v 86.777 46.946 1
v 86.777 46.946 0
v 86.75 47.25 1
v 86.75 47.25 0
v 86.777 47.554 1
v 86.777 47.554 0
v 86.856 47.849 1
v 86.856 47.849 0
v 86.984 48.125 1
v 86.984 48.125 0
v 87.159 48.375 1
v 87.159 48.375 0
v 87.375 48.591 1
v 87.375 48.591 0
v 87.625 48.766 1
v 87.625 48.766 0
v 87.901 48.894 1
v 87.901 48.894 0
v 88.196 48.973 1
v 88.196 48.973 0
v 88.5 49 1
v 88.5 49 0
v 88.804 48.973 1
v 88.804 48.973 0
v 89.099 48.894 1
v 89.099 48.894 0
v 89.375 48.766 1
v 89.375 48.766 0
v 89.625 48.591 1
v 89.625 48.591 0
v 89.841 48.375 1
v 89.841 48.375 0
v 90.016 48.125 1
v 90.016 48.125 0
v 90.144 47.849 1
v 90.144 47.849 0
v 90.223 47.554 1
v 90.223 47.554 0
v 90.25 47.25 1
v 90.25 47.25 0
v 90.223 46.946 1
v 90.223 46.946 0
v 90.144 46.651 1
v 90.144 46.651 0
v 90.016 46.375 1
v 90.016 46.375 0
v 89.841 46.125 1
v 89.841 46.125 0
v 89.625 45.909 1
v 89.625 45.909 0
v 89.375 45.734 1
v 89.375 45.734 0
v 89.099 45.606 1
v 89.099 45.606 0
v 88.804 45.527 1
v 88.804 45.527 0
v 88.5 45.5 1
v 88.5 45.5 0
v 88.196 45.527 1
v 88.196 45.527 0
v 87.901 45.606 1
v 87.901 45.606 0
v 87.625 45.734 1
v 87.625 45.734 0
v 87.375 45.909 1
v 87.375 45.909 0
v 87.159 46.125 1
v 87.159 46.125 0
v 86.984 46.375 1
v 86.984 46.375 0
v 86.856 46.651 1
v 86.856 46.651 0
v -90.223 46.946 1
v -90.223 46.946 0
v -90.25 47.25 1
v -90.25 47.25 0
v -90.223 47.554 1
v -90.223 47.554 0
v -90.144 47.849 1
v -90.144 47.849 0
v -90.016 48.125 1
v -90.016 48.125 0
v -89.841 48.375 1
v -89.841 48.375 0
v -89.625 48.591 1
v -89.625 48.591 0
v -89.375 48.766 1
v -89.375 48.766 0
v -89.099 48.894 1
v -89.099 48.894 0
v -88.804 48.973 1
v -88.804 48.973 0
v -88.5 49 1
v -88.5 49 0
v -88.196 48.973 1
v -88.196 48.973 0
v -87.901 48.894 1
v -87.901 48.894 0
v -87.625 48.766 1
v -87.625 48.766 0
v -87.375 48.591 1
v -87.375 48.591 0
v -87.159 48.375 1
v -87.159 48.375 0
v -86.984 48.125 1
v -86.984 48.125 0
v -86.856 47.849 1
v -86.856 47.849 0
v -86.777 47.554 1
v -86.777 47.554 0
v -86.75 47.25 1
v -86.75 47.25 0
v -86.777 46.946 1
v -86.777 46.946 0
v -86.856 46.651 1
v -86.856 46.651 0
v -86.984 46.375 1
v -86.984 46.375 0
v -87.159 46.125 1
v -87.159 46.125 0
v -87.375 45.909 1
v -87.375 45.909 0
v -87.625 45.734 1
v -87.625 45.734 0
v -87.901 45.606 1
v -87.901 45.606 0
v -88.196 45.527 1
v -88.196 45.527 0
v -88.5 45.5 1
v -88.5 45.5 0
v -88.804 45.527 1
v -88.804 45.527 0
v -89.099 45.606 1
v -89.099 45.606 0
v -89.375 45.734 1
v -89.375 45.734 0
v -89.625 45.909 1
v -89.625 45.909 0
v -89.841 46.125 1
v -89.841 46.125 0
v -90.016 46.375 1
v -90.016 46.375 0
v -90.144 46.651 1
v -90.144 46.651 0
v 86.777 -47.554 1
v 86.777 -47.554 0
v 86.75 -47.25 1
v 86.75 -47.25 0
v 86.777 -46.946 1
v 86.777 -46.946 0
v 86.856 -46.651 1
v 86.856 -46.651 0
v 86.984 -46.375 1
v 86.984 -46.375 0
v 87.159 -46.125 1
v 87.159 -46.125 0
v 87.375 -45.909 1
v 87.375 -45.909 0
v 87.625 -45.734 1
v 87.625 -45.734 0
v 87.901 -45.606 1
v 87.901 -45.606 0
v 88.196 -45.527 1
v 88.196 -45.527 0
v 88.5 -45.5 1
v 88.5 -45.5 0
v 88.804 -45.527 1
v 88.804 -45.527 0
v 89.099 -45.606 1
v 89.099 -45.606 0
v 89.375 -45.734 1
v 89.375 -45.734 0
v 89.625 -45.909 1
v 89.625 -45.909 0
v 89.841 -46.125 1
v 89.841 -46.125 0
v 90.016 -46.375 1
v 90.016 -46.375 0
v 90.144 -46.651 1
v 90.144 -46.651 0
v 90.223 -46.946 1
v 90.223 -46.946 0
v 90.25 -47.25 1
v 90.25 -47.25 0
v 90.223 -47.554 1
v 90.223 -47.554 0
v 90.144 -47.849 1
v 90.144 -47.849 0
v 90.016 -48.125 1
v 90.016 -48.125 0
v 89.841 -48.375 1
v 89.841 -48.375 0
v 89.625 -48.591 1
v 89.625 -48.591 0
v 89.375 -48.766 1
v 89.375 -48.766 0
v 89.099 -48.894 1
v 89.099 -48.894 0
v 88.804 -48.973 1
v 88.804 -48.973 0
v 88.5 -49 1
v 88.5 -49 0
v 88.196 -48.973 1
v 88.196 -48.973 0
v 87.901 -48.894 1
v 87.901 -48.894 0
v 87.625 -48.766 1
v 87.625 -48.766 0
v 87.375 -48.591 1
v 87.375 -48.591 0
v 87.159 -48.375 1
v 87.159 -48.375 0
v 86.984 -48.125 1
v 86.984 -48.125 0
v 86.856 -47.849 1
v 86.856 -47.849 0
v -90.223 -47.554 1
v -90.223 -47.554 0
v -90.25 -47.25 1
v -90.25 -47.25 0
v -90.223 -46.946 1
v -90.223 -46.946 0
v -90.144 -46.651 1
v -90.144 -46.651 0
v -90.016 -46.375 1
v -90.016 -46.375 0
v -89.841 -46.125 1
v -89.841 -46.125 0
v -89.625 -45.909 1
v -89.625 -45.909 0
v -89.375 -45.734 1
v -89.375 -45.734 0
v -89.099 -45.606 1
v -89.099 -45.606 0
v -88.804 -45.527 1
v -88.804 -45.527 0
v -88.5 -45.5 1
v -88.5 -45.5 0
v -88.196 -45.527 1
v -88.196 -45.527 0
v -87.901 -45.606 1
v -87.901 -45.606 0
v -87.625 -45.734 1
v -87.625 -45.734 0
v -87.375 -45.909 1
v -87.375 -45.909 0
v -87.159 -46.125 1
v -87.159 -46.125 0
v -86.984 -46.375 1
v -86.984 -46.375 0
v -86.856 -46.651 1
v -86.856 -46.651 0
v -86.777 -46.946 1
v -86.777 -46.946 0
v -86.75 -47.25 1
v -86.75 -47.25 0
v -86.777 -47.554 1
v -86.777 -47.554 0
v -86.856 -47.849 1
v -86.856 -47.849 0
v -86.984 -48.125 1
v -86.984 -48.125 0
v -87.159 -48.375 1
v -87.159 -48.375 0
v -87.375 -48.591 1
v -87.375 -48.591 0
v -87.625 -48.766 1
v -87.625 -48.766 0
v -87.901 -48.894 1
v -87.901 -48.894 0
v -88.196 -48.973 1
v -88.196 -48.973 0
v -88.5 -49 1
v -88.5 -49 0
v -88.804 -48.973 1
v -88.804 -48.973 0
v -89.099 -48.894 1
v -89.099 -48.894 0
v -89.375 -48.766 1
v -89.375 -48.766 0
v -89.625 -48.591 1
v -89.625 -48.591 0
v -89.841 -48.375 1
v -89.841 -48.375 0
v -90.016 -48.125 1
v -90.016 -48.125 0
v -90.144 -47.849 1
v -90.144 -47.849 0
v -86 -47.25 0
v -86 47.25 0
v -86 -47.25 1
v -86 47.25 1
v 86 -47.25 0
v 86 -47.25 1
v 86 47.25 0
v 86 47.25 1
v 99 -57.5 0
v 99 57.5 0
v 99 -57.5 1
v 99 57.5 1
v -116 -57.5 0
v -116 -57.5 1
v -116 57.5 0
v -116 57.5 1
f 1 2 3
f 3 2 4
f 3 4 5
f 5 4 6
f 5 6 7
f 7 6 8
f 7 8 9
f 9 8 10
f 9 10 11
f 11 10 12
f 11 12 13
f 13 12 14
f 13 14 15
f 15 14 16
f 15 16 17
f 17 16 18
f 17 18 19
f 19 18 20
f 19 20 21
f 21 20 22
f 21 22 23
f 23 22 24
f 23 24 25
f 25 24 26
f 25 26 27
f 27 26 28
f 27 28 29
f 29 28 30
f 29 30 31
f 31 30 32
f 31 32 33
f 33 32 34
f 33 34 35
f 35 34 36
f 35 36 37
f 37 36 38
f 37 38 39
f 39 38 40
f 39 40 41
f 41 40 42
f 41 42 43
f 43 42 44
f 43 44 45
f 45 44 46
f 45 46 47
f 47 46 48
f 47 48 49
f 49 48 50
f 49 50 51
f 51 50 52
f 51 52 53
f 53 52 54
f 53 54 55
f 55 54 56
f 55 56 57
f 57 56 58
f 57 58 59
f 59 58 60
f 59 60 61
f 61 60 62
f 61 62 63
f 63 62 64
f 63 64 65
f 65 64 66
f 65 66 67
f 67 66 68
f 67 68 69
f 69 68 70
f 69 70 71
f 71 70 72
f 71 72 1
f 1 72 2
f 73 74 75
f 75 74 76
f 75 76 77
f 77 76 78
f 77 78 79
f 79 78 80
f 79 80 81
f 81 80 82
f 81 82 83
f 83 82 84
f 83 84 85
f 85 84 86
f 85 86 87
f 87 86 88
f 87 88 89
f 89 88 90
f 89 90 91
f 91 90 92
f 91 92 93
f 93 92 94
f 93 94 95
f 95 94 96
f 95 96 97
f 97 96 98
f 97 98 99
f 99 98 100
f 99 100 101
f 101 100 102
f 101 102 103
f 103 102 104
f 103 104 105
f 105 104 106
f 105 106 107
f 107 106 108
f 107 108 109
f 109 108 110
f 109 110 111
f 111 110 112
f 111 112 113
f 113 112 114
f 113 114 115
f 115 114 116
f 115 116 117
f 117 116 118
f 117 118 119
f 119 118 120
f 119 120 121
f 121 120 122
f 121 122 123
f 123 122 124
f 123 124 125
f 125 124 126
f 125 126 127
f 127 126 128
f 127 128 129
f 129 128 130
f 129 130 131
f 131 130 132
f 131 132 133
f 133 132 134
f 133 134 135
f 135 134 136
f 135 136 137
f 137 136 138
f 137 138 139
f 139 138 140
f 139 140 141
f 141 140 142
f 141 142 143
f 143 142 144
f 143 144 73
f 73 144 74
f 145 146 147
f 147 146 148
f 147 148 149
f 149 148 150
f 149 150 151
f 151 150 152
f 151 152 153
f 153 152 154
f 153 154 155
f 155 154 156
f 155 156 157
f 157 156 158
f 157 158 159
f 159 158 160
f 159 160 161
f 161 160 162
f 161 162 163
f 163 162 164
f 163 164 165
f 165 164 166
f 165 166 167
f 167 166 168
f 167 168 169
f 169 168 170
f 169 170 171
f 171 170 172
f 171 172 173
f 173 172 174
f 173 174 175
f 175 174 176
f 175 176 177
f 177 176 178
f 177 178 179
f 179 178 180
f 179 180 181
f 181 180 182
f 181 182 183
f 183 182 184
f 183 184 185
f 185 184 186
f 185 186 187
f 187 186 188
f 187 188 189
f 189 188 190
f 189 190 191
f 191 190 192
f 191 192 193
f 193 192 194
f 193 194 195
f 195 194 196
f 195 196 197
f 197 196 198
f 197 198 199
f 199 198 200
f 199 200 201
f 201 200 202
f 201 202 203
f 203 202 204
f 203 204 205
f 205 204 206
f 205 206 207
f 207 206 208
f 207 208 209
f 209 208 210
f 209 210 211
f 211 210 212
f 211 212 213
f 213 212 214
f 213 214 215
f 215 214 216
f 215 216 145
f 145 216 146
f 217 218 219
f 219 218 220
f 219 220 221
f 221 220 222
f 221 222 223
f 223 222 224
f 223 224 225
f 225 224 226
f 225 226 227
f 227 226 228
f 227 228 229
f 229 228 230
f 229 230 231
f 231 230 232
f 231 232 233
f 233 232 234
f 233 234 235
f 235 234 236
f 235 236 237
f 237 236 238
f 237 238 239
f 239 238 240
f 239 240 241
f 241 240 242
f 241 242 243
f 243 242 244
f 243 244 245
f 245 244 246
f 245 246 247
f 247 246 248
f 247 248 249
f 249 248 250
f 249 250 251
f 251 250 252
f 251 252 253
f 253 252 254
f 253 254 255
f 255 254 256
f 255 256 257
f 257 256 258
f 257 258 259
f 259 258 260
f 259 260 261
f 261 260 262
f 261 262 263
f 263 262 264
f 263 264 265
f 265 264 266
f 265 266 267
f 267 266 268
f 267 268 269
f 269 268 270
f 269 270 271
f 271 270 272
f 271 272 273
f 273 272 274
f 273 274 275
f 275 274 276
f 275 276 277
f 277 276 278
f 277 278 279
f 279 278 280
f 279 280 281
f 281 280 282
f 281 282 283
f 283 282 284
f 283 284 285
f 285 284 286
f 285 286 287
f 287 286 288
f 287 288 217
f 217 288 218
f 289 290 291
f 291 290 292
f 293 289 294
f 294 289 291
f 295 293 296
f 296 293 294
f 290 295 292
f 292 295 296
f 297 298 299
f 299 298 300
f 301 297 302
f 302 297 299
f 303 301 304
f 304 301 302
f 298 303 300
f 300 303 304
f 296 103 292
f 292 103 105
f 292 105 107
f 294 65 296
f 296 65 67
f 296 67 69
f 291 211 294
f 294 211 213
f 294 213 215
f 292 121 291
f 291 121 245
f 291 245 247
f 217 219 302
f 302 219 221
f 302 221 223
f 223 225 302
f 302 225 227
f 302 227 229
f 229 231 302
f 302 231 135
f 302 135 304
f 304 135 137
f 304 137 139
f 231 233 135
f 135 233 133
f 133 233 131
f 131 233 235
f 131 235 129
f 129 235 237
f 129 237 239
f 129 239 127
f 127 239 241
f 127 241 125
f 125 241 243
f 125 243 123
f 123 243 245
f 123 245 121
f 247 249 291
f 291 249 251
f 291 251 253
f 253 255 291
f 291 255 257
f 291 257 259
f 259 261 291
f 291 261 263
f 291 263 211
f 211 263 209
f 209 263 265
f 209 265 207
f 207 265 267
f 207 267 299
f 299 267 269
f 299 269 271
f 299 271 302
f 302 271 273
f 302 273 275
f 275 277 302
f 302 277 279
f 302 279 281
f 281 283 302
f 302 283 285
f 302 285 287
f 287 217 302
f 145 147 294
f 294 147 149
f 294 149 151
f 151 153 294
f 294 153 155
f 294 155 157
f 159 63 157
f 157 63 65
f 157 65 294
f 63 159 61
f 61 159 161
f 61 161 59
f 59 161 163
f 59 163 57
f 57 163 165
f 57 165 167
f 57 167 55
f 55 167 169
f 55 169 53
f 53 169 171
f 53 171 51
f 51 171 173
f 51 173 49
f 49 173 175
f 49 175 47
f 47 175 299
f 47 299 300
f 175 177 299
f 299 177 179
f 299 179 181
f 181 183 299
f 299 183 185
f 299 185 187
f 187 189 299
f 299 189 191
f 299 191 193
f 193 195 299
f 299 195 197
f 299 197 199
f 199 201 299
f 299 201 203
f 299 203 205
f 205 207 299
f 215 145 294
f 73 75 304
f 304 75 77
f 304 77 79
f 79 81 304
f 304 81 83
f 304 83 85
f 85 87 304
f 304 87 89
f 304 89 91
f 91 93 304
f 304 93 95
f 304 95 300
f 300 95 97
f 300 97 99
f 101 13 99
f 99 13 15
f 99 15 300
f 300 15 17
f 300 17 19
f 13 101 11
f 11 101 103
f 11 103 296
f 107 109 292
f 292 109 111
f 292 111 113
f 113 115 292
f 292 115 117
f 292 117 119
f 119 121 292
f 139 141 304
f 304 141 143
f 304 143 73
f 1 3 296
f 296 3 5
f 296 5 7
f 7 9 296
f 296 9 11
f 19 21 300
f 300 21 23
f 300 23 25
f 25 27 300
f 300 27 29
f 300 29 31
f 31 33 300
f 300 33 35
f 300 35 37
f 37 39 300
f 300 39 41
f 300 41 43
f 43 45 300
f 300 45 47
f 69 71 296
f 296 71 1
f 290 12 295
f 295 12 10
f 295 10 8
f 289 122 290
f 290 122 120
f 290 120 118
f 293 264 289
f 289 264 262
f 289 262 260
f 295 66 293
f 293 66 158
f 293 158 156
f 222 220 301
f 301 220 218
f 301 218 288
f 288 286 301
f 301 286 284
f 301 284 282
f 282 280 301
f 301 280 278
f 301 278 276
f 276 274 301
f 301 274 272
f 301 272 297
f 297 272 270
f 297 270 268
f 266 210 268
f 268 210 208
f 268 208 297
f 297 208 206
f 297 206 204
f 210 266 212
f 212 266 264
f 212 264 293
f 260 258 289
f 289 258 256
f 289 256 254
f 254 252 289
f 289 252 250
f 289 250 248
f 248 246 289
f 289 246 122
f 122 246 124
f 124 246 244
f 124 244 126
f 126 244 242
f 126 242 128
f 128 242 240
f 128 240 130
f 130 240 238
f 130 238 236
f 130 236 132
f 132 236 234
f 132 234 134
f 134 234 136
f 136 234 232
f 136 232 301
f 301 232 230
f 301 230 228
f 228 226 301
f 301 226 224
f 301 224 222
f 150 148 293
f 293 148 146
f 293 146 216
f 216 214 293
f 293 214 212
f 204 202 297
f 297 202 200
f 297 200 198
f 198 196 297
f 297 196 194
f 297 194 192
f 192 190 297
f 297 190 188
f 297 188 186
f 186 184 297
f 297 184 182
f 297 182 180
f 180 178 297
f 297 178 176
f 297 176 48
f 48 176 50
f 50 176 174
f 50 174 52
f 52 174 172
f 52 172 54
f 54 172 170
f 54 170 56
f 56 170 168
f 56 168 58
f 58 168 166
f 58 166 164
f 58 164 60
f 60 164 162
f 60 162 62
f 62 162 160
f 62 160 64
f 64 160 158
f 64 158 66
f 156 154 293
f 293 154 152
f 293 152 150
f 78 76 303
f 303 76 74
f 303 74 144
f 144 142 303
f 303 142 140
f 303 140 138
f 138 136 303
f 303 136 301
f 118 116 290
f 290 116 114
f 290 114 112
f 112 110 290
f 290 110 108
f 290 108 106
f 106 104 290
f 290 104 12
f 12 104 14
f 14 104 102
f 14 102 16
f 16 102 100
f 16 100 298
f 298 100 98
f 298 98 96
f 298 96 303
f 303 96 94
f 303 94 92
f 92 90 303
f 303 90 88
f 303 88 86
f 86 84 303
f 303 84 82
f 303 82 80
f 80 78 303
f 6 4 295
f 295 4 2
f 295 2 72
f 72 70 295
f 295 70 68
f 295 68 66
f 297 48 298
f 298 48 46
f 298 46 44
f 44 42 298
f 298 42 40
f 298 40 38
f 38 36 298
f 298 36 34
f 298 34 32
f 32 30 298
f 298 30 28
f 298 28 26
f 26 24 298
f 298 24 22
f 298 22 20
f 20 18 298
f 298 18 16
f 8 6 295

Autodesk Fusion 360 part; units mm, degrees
sketch "Sketch1" plane through (0, 0, 0) normal (0, 0, 1) x (1, 0, 0)
  line L0 (88.5, -47.25) -> (-88.5, -47.25) construction
  line L1 (-88.5, -47.25) -> (-88.5, 47.25) construction
  line L2 (-88.5, 47.25) -> (88.5, 47.25) construction
  line L3 (88.5, 47.25) -> (88.5, -47.25) construction
  line L4 (88.5, -47.25) -> (-88.5, 47.25) construction
  line L5 (-88.5, -47.25) -> (88.5, 47.25) construction
  circle A0 centre (-88.5, 47.25) radius 1.75
  circle A1 centre (88.5, 47.25) radius 1.75
  circle A2 centre (88.5, -47.25) radius 1.75
  circle A3 centre (-88.5, -47.25) radius 1.75
  circle A4 centre (88.5, -47.25) radius 2.5
  circle A5 centre (88.5, 47.25) radius 2.5
  circle A6 centre (-88.5, 47.25) radius 2.5
  circle A7 centre (-88.5, -47.25) radius 2.5
  line L6 (86, -47.25) -> (-86, -47.25)
  line L7 (-86, -47.25) -> (-86, 47.25)
  line L8 (-86, 47.25) -> (86, 47.25)
  line L9 (86, 47.25) -> (86, -47.25)
  line L10 (86, -47.25) -> (-86, 47.25) construction
  line L11 (-86, -47.25) -> (86, 47.25) construction
  line L12 (99, -57.5) -> (-116, -57.5)
  line L13 (-116, -57.5) -> (-116, 57.5)
  line L14 (-116, 57.5) -> (99, 57.5)
  line L15 (99, 57.5) -> (99, -57.5)
  dimension "d1" = 177
  dimension "d2" = 94.5
  dimension "d3" = 3.5
  dimension "d4" = 3.5
  dimension "d5" = 3.5
  dimension "d6" = 3.5
  dimension "d7" = 5
  dimension "d8" = 5
  dimension "d9" = 5
  dimension "d10" = 5
  dimension "d11" = 215
  dimension "d12" = 115
  dimension "d15" = 27.5
  dimension "d16" = 57.5
extrude "Extrude1" add sketch "Sketch1" along normal blind 1 contours A4 | A7 | A6 | A5 | L12 L13 L14 L15
sketch "Sketch2" plane through (0, 0, 1) normal (0, 0, 1) x (-1, 0, 0)
  circle A0 centre (-88.5, -47.25) radius 1.75
  circle A1 centre (88.5, -47.25) radius 1.75
  line L0 (86, -47.25) -> (-86, -47.25)
  line L1 (-86, -47.25) -> (-86, 47.25)
  line L2 (-86, 47.25) -> (86, 47.25)
  line L3 (86, 47.25) -> (86, -47.25)
  circle A2 centre (88.5, 47.25) radius 1.75
  circle A3 centre (-88.5, 47.25) radius 1.75
  line L4 (-99, -57.5) -> (116, -57.5)
  line L5 (116, -57.5) -> (116, 57.5)
  line L6 (116, 57.5) -> (-99, 57.5)
  line L7 (-99, 57.5) -> (-99, -57.5)
